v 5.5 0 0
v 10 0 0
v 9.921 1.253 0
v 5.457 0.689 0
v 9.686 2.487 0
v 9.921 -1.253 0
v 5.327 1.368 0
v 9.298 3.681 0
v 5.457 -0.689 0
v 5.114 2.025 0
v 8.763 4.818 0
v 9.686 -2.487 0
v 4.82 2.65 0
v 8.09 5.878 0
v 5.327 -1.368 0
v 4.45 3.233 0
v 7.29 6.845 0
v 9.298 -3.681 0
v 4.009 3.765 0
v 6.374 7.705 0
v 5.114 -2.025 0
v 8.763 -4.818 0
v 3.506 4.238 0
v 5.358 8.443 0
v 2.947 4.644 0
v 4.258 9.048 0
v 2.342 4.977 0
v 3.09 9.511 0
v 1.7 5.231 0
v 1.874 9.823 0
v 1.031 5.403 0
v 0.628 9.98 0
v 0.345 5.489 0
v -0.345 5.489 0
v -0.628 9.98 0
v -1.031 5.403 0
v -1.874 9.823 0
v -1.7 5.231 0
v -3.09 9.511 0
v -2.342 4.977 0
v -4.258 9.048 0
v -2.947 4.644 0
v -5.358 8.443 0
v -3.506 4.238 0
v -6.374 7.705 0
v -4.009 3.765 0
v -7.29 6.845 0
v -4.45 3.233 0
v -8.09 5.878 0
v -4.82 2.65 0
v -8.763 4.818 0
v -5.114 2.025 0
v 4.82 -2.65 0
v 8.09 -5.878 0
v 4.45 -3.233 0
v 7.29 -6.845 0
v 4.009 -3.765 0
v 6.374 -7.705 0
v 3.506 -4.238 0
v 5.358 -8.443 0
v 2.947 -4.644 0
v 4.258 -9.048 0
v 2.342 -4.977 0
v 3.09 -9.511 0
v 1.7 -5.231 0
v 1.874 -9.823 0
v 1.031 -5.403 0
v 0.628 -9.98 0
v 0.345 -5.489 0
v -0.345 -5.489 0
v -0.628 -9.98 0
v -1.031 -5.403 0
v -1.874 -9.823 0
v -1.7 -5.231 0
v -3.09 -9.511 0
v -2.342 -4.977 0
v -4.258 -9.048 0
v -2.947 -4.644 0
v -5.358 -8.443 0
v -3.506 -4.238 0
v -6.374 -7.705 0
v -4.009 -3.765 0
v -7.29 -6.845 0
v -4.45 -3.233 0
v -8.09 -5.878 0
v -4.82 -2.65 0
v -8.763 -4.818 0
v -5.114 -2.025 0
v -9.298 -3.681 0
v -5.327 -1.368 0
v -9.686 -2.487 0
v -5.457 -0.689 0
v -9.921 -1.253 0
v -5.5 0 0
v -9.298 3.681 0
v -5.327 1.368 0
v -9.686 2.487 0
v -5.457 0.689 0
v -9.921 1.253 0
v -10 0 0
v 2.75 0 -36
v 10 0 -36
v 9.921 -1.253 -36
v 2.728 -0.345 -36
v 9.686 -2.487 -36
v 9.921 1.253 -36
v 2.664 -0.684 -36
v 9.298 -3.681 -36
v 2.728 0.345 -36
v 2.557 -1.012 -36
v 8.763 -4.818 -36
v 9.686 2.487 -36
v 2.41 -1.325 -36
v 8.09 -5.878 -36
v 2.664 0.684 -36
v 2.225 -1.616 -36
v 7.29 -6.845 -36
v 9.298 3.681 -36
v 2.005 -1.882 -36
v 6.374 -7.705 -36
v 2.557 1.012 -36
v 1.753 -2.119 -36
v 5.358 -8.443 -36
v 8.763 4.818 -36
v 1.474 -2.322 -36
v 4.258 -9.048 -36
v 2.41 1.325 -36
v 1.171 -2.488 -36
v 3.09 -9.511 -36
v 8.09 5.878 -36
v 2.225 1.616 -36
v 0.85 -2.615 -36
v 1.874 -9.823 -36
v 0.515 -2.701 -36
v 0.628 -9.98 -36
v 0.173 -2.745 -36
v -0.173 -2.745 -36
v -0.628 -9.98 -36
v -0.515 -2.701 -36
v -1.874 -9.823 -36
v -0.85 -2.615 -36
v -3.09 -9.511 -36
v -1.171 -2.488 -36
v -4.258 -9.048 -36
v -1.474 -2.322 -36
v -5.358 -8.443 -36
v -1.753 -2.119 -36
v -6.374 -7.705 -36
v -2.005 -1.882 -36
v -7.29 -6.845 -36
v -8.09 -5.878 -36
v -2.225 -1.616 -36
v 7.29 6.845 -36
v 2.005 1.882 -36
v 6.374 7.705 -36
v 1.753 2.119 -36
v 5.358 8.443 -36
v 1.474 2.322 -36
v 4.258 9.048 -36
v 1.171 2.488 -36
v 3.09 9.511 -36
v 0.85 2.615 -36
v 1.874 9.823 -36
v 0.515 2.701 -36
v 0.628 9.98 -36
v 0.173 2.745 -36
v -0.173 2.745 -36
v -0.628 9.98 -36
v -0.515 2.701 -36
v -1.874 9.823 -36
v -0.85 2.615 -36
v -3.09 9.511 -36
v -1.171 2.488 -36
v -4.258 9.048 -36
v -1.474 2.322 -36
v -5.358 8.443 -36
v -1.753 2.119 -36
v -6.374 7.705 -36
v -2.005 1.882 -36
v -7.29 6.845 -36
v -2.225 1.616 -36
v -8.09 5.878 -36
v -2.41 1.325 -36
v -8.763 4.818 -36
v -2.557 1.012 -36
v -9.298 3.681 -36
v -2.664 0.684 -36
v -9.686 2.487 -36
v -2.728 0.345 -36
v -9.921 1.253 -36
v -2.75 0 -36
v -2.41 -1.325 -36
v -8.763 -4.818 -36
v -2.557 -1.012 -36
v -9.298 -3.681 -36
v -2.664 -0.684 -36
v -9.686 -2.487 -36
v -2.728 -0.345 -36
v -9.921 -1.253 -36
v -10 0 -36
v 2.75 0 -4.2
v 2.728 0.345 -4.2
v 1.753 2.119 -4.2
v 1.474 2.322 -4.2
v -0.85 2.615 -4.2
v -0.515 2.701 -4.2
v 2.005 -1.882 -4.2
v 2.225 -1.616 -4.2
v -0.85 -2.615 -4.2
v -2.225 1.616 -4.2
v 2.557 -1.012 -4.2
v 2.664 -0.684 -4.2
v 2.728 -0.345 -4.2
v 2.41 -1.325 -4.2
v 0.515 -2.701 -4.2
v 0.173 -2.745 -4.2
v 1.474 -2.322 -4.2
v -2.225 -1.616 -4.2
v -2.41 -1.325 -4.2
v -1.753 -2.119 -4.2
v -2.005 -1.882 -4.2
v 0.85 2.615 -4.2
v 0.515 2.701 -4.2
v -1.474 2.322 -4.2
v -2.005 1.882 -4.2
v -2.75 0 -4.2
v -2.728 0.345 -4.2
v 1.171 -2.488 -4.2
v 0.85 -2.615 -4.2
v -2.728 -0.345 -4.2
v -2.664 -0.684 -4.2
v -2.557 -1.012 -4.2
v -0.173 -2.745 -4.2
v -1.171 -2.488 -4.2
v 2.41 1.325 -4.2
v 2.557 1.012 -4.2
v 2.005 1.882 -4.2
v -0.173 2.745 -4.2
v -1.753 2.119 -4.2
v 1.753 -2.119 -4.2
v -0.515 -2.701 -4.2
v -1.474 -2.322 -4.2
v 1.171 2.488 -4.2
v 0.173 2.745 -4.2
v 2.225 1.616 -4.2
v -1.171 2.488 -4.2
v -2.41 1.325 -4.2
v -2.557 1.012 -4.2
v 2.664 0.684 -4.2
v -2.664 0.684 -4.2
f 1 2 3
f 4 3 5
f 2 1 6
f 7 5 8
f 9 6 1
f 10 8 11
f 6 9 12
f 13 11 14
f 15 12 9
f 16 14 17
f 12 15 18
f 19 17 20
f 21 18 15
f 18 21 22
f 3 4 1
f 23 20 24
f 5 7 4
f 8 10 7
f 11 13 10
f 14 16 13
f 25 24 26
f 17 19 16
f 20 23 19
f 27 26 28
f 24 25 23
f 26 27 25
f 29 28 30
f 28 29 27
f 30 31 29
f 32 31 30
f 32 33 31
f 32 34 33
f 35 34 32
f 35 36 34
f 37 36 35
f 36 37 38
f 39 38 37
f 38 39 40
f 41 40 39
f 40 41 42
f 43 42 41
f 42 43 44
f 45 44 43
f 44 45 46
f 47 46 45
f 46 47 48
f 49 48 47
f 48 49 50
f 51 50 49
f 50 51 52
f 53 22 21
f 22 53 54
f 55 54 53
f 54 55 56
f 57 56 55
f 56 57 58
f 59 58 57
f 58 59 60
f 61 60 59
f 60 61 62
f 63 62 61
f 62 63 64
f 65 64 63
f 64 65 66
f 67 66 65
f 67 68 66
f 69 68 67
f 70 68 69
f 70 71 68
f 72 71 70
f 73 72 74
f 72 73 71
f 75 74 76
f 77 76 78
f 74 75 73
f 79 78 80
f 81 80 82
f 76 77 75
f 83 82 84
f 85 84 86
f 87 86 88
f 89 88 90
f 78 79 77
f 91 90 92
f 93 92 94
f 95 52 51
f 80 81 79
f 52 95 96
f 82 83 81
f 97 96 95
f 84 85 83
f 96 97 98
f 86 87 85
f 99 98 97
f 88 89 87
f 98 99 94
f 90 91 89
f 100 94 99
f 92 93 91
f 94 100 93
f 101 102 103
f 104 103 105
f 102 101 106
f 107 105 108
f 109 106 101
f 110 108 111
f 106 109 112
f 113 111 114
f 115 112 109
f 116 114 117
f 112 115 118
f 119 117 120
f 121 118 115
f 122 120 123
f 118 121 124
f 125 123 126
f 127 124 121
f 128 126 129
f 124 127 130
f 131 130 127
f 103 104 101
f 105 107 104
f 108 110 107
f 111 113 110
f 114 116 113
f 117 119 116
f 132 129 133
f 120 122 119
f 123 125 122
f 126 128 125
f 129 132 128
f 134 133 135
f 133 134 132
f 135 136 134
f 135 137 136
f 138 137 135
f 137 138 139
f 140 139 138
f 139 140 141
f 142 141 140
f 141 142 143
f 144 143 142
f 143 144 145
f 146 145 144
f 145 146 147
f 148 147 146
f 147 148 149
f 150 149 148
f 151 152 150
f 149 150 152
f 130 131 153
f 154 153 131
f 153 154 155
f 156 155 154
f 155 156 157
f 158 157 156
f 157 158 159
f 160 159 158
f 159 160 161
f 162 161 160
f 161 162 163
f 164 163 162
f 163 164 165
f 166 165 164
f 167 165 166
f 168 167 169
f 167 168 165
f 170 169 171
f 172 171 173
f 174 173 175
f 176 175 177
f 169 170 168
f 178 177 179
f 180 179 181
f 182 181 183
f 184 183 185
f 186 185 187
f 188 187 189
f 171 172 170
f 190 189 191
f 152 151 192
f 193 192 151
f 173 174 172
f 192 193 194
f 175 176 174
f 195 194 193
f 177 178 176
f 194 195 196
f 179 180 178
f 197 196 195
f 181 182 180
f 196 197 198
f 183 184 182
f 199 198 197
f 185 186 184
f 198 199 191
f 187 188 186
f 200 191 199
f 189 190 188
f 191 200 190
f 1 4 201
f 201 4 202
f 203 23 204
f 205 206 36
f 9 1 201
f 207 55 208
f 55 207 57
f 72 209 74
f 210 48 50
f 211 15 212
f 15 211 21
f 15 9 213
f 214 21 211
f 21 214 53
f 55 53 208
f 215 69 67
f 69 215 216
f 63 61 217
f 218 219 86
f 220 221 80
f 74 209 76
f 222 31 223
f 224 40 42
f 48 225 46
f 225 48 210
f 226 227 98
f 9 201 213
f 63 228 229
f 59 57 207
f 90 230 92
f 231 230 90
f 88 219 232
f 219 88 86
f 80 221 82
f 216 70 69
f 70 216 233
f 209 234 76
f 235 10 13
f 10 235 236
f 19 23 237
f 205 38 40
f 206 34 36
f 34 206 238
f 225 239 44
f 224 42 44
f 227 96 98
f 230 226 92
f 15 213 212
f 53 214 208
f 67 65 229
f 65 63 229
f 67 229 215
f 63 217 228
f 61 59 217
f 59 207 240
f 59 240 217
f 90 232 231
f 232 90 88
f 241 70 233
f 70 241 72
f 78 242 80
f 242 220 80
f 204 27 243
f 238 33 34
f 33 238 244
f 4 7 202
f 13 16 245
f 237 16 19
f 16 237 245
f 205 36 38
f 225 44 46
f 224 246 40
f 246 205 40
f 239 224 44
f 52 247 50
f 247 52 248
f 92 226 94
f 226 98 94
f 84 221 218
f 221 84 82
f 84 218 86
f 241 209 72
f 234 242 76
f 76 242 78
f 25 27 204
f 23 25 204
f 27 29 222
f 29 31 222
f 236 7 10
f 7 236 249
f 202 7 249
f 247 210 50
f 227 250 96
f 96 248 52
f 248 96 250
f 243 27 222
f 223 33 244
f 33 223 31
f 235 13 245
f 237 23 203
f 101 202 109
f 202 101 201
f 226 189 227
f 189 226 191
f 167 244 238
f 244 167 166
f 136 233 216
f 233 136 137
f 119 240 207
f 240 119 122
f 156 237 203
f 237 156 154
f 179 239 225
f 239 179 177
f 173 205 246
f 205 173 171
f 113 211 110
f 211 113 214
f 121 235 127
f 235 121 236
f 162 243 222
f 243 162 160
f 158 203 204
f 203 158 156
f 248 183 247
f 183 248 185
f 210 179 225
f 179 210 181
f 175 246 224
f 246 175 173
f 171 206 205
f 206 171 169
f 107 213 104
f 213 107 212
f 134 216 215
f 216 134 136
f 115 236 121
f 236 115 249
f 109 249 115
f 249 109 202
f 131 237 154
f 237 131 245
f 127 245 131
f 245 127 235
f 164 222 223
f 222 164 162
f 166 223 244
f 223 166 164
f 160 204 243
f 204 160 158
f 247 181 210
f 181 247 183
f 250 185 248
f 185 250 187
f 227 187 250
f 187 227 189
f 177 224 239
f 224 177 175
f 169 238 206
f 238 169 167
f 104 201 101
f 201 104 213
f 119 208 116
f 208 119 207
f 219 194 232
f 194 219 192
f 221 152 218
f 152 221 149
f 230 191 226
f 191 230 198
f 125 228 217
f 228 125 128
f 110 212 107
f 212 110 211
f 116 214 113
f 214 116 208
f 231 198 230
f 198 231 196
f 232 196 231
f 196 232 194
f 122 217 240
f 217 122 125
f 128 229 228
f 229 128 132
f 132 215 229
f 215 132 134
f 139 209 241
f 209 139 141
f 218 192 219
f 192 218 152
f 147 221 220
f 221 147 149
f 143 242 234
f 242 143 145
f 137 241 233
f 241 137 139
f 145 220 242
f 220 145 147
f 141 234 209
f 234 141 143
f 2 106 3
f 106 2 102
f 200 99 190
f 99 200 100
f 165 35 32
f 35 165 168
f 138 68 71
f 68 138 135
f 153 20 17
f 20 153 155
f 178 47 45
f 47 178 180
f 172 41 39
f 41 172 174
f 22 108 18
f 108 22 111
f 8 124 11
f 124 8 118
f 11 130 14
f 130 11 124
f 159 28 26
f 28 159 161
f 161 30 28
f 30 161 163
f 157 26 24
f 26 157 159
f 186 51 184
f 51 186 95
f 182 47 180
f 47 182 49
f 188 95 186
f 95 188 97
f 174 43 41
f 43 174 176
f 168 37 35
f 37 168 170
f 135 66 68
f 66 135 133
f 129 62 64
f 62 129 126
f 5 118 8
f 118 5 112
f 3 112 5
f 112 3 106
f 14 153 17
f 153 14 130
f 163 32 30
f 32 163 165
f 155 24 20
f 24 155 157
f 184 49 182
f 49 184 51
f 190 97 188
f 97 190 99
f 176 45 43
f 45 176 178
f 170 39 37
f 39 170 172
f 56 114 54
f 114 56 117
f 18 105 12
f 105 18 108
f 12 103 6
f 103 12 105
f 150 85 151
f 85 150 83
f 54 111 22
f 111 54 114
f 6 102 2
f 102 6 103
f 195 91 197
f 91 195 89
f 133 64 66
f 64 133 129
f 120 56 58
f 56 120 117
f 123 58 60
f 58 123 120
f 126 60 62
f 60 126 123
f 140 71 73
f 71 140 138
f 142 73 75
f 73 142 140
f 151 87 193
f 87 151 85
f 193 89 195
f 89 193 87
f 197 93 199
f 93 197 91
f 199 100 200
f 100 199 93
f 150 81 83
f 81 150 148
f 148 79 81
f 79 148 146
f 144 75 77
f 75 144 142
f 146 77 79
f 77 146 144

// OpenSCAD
$fn = 50;


difference() {
	union() {
		translate(v = [0, 0, -36.0000000000]) {
			cylinder(h = 36, r = 10.0000000000);
		}
		cylinder(h = 0, r = 19.0000000000);
	}
	union() {
		translate(v = [0, 0, 0]) {
			rotate(a = [0, 0, 0]) {
				difference() {
					union() {
						#translate(v = [0, 0, -36.0000000000]) {
							cylinder(h = 36, r = 2.2500000000);
						}
						#translate(v = [0, 0, -4.2000000000]) {
							cylinder(h = 4.2000000000, r = 10.0000000000, r1 = 2.7500000000, r2 = 5.5000000000);
						}
						#translate(v = [0, 0, -36.0000000000]) {
							cylinder(h = 36, r = 2.7500000000);
						}
						#translate(v = [0, 0, -36.0000000000]) {
							cylinder(h = 36, r = 2.2500000000);
						}
					}
					union();
				}
			}
		}
	}
}
